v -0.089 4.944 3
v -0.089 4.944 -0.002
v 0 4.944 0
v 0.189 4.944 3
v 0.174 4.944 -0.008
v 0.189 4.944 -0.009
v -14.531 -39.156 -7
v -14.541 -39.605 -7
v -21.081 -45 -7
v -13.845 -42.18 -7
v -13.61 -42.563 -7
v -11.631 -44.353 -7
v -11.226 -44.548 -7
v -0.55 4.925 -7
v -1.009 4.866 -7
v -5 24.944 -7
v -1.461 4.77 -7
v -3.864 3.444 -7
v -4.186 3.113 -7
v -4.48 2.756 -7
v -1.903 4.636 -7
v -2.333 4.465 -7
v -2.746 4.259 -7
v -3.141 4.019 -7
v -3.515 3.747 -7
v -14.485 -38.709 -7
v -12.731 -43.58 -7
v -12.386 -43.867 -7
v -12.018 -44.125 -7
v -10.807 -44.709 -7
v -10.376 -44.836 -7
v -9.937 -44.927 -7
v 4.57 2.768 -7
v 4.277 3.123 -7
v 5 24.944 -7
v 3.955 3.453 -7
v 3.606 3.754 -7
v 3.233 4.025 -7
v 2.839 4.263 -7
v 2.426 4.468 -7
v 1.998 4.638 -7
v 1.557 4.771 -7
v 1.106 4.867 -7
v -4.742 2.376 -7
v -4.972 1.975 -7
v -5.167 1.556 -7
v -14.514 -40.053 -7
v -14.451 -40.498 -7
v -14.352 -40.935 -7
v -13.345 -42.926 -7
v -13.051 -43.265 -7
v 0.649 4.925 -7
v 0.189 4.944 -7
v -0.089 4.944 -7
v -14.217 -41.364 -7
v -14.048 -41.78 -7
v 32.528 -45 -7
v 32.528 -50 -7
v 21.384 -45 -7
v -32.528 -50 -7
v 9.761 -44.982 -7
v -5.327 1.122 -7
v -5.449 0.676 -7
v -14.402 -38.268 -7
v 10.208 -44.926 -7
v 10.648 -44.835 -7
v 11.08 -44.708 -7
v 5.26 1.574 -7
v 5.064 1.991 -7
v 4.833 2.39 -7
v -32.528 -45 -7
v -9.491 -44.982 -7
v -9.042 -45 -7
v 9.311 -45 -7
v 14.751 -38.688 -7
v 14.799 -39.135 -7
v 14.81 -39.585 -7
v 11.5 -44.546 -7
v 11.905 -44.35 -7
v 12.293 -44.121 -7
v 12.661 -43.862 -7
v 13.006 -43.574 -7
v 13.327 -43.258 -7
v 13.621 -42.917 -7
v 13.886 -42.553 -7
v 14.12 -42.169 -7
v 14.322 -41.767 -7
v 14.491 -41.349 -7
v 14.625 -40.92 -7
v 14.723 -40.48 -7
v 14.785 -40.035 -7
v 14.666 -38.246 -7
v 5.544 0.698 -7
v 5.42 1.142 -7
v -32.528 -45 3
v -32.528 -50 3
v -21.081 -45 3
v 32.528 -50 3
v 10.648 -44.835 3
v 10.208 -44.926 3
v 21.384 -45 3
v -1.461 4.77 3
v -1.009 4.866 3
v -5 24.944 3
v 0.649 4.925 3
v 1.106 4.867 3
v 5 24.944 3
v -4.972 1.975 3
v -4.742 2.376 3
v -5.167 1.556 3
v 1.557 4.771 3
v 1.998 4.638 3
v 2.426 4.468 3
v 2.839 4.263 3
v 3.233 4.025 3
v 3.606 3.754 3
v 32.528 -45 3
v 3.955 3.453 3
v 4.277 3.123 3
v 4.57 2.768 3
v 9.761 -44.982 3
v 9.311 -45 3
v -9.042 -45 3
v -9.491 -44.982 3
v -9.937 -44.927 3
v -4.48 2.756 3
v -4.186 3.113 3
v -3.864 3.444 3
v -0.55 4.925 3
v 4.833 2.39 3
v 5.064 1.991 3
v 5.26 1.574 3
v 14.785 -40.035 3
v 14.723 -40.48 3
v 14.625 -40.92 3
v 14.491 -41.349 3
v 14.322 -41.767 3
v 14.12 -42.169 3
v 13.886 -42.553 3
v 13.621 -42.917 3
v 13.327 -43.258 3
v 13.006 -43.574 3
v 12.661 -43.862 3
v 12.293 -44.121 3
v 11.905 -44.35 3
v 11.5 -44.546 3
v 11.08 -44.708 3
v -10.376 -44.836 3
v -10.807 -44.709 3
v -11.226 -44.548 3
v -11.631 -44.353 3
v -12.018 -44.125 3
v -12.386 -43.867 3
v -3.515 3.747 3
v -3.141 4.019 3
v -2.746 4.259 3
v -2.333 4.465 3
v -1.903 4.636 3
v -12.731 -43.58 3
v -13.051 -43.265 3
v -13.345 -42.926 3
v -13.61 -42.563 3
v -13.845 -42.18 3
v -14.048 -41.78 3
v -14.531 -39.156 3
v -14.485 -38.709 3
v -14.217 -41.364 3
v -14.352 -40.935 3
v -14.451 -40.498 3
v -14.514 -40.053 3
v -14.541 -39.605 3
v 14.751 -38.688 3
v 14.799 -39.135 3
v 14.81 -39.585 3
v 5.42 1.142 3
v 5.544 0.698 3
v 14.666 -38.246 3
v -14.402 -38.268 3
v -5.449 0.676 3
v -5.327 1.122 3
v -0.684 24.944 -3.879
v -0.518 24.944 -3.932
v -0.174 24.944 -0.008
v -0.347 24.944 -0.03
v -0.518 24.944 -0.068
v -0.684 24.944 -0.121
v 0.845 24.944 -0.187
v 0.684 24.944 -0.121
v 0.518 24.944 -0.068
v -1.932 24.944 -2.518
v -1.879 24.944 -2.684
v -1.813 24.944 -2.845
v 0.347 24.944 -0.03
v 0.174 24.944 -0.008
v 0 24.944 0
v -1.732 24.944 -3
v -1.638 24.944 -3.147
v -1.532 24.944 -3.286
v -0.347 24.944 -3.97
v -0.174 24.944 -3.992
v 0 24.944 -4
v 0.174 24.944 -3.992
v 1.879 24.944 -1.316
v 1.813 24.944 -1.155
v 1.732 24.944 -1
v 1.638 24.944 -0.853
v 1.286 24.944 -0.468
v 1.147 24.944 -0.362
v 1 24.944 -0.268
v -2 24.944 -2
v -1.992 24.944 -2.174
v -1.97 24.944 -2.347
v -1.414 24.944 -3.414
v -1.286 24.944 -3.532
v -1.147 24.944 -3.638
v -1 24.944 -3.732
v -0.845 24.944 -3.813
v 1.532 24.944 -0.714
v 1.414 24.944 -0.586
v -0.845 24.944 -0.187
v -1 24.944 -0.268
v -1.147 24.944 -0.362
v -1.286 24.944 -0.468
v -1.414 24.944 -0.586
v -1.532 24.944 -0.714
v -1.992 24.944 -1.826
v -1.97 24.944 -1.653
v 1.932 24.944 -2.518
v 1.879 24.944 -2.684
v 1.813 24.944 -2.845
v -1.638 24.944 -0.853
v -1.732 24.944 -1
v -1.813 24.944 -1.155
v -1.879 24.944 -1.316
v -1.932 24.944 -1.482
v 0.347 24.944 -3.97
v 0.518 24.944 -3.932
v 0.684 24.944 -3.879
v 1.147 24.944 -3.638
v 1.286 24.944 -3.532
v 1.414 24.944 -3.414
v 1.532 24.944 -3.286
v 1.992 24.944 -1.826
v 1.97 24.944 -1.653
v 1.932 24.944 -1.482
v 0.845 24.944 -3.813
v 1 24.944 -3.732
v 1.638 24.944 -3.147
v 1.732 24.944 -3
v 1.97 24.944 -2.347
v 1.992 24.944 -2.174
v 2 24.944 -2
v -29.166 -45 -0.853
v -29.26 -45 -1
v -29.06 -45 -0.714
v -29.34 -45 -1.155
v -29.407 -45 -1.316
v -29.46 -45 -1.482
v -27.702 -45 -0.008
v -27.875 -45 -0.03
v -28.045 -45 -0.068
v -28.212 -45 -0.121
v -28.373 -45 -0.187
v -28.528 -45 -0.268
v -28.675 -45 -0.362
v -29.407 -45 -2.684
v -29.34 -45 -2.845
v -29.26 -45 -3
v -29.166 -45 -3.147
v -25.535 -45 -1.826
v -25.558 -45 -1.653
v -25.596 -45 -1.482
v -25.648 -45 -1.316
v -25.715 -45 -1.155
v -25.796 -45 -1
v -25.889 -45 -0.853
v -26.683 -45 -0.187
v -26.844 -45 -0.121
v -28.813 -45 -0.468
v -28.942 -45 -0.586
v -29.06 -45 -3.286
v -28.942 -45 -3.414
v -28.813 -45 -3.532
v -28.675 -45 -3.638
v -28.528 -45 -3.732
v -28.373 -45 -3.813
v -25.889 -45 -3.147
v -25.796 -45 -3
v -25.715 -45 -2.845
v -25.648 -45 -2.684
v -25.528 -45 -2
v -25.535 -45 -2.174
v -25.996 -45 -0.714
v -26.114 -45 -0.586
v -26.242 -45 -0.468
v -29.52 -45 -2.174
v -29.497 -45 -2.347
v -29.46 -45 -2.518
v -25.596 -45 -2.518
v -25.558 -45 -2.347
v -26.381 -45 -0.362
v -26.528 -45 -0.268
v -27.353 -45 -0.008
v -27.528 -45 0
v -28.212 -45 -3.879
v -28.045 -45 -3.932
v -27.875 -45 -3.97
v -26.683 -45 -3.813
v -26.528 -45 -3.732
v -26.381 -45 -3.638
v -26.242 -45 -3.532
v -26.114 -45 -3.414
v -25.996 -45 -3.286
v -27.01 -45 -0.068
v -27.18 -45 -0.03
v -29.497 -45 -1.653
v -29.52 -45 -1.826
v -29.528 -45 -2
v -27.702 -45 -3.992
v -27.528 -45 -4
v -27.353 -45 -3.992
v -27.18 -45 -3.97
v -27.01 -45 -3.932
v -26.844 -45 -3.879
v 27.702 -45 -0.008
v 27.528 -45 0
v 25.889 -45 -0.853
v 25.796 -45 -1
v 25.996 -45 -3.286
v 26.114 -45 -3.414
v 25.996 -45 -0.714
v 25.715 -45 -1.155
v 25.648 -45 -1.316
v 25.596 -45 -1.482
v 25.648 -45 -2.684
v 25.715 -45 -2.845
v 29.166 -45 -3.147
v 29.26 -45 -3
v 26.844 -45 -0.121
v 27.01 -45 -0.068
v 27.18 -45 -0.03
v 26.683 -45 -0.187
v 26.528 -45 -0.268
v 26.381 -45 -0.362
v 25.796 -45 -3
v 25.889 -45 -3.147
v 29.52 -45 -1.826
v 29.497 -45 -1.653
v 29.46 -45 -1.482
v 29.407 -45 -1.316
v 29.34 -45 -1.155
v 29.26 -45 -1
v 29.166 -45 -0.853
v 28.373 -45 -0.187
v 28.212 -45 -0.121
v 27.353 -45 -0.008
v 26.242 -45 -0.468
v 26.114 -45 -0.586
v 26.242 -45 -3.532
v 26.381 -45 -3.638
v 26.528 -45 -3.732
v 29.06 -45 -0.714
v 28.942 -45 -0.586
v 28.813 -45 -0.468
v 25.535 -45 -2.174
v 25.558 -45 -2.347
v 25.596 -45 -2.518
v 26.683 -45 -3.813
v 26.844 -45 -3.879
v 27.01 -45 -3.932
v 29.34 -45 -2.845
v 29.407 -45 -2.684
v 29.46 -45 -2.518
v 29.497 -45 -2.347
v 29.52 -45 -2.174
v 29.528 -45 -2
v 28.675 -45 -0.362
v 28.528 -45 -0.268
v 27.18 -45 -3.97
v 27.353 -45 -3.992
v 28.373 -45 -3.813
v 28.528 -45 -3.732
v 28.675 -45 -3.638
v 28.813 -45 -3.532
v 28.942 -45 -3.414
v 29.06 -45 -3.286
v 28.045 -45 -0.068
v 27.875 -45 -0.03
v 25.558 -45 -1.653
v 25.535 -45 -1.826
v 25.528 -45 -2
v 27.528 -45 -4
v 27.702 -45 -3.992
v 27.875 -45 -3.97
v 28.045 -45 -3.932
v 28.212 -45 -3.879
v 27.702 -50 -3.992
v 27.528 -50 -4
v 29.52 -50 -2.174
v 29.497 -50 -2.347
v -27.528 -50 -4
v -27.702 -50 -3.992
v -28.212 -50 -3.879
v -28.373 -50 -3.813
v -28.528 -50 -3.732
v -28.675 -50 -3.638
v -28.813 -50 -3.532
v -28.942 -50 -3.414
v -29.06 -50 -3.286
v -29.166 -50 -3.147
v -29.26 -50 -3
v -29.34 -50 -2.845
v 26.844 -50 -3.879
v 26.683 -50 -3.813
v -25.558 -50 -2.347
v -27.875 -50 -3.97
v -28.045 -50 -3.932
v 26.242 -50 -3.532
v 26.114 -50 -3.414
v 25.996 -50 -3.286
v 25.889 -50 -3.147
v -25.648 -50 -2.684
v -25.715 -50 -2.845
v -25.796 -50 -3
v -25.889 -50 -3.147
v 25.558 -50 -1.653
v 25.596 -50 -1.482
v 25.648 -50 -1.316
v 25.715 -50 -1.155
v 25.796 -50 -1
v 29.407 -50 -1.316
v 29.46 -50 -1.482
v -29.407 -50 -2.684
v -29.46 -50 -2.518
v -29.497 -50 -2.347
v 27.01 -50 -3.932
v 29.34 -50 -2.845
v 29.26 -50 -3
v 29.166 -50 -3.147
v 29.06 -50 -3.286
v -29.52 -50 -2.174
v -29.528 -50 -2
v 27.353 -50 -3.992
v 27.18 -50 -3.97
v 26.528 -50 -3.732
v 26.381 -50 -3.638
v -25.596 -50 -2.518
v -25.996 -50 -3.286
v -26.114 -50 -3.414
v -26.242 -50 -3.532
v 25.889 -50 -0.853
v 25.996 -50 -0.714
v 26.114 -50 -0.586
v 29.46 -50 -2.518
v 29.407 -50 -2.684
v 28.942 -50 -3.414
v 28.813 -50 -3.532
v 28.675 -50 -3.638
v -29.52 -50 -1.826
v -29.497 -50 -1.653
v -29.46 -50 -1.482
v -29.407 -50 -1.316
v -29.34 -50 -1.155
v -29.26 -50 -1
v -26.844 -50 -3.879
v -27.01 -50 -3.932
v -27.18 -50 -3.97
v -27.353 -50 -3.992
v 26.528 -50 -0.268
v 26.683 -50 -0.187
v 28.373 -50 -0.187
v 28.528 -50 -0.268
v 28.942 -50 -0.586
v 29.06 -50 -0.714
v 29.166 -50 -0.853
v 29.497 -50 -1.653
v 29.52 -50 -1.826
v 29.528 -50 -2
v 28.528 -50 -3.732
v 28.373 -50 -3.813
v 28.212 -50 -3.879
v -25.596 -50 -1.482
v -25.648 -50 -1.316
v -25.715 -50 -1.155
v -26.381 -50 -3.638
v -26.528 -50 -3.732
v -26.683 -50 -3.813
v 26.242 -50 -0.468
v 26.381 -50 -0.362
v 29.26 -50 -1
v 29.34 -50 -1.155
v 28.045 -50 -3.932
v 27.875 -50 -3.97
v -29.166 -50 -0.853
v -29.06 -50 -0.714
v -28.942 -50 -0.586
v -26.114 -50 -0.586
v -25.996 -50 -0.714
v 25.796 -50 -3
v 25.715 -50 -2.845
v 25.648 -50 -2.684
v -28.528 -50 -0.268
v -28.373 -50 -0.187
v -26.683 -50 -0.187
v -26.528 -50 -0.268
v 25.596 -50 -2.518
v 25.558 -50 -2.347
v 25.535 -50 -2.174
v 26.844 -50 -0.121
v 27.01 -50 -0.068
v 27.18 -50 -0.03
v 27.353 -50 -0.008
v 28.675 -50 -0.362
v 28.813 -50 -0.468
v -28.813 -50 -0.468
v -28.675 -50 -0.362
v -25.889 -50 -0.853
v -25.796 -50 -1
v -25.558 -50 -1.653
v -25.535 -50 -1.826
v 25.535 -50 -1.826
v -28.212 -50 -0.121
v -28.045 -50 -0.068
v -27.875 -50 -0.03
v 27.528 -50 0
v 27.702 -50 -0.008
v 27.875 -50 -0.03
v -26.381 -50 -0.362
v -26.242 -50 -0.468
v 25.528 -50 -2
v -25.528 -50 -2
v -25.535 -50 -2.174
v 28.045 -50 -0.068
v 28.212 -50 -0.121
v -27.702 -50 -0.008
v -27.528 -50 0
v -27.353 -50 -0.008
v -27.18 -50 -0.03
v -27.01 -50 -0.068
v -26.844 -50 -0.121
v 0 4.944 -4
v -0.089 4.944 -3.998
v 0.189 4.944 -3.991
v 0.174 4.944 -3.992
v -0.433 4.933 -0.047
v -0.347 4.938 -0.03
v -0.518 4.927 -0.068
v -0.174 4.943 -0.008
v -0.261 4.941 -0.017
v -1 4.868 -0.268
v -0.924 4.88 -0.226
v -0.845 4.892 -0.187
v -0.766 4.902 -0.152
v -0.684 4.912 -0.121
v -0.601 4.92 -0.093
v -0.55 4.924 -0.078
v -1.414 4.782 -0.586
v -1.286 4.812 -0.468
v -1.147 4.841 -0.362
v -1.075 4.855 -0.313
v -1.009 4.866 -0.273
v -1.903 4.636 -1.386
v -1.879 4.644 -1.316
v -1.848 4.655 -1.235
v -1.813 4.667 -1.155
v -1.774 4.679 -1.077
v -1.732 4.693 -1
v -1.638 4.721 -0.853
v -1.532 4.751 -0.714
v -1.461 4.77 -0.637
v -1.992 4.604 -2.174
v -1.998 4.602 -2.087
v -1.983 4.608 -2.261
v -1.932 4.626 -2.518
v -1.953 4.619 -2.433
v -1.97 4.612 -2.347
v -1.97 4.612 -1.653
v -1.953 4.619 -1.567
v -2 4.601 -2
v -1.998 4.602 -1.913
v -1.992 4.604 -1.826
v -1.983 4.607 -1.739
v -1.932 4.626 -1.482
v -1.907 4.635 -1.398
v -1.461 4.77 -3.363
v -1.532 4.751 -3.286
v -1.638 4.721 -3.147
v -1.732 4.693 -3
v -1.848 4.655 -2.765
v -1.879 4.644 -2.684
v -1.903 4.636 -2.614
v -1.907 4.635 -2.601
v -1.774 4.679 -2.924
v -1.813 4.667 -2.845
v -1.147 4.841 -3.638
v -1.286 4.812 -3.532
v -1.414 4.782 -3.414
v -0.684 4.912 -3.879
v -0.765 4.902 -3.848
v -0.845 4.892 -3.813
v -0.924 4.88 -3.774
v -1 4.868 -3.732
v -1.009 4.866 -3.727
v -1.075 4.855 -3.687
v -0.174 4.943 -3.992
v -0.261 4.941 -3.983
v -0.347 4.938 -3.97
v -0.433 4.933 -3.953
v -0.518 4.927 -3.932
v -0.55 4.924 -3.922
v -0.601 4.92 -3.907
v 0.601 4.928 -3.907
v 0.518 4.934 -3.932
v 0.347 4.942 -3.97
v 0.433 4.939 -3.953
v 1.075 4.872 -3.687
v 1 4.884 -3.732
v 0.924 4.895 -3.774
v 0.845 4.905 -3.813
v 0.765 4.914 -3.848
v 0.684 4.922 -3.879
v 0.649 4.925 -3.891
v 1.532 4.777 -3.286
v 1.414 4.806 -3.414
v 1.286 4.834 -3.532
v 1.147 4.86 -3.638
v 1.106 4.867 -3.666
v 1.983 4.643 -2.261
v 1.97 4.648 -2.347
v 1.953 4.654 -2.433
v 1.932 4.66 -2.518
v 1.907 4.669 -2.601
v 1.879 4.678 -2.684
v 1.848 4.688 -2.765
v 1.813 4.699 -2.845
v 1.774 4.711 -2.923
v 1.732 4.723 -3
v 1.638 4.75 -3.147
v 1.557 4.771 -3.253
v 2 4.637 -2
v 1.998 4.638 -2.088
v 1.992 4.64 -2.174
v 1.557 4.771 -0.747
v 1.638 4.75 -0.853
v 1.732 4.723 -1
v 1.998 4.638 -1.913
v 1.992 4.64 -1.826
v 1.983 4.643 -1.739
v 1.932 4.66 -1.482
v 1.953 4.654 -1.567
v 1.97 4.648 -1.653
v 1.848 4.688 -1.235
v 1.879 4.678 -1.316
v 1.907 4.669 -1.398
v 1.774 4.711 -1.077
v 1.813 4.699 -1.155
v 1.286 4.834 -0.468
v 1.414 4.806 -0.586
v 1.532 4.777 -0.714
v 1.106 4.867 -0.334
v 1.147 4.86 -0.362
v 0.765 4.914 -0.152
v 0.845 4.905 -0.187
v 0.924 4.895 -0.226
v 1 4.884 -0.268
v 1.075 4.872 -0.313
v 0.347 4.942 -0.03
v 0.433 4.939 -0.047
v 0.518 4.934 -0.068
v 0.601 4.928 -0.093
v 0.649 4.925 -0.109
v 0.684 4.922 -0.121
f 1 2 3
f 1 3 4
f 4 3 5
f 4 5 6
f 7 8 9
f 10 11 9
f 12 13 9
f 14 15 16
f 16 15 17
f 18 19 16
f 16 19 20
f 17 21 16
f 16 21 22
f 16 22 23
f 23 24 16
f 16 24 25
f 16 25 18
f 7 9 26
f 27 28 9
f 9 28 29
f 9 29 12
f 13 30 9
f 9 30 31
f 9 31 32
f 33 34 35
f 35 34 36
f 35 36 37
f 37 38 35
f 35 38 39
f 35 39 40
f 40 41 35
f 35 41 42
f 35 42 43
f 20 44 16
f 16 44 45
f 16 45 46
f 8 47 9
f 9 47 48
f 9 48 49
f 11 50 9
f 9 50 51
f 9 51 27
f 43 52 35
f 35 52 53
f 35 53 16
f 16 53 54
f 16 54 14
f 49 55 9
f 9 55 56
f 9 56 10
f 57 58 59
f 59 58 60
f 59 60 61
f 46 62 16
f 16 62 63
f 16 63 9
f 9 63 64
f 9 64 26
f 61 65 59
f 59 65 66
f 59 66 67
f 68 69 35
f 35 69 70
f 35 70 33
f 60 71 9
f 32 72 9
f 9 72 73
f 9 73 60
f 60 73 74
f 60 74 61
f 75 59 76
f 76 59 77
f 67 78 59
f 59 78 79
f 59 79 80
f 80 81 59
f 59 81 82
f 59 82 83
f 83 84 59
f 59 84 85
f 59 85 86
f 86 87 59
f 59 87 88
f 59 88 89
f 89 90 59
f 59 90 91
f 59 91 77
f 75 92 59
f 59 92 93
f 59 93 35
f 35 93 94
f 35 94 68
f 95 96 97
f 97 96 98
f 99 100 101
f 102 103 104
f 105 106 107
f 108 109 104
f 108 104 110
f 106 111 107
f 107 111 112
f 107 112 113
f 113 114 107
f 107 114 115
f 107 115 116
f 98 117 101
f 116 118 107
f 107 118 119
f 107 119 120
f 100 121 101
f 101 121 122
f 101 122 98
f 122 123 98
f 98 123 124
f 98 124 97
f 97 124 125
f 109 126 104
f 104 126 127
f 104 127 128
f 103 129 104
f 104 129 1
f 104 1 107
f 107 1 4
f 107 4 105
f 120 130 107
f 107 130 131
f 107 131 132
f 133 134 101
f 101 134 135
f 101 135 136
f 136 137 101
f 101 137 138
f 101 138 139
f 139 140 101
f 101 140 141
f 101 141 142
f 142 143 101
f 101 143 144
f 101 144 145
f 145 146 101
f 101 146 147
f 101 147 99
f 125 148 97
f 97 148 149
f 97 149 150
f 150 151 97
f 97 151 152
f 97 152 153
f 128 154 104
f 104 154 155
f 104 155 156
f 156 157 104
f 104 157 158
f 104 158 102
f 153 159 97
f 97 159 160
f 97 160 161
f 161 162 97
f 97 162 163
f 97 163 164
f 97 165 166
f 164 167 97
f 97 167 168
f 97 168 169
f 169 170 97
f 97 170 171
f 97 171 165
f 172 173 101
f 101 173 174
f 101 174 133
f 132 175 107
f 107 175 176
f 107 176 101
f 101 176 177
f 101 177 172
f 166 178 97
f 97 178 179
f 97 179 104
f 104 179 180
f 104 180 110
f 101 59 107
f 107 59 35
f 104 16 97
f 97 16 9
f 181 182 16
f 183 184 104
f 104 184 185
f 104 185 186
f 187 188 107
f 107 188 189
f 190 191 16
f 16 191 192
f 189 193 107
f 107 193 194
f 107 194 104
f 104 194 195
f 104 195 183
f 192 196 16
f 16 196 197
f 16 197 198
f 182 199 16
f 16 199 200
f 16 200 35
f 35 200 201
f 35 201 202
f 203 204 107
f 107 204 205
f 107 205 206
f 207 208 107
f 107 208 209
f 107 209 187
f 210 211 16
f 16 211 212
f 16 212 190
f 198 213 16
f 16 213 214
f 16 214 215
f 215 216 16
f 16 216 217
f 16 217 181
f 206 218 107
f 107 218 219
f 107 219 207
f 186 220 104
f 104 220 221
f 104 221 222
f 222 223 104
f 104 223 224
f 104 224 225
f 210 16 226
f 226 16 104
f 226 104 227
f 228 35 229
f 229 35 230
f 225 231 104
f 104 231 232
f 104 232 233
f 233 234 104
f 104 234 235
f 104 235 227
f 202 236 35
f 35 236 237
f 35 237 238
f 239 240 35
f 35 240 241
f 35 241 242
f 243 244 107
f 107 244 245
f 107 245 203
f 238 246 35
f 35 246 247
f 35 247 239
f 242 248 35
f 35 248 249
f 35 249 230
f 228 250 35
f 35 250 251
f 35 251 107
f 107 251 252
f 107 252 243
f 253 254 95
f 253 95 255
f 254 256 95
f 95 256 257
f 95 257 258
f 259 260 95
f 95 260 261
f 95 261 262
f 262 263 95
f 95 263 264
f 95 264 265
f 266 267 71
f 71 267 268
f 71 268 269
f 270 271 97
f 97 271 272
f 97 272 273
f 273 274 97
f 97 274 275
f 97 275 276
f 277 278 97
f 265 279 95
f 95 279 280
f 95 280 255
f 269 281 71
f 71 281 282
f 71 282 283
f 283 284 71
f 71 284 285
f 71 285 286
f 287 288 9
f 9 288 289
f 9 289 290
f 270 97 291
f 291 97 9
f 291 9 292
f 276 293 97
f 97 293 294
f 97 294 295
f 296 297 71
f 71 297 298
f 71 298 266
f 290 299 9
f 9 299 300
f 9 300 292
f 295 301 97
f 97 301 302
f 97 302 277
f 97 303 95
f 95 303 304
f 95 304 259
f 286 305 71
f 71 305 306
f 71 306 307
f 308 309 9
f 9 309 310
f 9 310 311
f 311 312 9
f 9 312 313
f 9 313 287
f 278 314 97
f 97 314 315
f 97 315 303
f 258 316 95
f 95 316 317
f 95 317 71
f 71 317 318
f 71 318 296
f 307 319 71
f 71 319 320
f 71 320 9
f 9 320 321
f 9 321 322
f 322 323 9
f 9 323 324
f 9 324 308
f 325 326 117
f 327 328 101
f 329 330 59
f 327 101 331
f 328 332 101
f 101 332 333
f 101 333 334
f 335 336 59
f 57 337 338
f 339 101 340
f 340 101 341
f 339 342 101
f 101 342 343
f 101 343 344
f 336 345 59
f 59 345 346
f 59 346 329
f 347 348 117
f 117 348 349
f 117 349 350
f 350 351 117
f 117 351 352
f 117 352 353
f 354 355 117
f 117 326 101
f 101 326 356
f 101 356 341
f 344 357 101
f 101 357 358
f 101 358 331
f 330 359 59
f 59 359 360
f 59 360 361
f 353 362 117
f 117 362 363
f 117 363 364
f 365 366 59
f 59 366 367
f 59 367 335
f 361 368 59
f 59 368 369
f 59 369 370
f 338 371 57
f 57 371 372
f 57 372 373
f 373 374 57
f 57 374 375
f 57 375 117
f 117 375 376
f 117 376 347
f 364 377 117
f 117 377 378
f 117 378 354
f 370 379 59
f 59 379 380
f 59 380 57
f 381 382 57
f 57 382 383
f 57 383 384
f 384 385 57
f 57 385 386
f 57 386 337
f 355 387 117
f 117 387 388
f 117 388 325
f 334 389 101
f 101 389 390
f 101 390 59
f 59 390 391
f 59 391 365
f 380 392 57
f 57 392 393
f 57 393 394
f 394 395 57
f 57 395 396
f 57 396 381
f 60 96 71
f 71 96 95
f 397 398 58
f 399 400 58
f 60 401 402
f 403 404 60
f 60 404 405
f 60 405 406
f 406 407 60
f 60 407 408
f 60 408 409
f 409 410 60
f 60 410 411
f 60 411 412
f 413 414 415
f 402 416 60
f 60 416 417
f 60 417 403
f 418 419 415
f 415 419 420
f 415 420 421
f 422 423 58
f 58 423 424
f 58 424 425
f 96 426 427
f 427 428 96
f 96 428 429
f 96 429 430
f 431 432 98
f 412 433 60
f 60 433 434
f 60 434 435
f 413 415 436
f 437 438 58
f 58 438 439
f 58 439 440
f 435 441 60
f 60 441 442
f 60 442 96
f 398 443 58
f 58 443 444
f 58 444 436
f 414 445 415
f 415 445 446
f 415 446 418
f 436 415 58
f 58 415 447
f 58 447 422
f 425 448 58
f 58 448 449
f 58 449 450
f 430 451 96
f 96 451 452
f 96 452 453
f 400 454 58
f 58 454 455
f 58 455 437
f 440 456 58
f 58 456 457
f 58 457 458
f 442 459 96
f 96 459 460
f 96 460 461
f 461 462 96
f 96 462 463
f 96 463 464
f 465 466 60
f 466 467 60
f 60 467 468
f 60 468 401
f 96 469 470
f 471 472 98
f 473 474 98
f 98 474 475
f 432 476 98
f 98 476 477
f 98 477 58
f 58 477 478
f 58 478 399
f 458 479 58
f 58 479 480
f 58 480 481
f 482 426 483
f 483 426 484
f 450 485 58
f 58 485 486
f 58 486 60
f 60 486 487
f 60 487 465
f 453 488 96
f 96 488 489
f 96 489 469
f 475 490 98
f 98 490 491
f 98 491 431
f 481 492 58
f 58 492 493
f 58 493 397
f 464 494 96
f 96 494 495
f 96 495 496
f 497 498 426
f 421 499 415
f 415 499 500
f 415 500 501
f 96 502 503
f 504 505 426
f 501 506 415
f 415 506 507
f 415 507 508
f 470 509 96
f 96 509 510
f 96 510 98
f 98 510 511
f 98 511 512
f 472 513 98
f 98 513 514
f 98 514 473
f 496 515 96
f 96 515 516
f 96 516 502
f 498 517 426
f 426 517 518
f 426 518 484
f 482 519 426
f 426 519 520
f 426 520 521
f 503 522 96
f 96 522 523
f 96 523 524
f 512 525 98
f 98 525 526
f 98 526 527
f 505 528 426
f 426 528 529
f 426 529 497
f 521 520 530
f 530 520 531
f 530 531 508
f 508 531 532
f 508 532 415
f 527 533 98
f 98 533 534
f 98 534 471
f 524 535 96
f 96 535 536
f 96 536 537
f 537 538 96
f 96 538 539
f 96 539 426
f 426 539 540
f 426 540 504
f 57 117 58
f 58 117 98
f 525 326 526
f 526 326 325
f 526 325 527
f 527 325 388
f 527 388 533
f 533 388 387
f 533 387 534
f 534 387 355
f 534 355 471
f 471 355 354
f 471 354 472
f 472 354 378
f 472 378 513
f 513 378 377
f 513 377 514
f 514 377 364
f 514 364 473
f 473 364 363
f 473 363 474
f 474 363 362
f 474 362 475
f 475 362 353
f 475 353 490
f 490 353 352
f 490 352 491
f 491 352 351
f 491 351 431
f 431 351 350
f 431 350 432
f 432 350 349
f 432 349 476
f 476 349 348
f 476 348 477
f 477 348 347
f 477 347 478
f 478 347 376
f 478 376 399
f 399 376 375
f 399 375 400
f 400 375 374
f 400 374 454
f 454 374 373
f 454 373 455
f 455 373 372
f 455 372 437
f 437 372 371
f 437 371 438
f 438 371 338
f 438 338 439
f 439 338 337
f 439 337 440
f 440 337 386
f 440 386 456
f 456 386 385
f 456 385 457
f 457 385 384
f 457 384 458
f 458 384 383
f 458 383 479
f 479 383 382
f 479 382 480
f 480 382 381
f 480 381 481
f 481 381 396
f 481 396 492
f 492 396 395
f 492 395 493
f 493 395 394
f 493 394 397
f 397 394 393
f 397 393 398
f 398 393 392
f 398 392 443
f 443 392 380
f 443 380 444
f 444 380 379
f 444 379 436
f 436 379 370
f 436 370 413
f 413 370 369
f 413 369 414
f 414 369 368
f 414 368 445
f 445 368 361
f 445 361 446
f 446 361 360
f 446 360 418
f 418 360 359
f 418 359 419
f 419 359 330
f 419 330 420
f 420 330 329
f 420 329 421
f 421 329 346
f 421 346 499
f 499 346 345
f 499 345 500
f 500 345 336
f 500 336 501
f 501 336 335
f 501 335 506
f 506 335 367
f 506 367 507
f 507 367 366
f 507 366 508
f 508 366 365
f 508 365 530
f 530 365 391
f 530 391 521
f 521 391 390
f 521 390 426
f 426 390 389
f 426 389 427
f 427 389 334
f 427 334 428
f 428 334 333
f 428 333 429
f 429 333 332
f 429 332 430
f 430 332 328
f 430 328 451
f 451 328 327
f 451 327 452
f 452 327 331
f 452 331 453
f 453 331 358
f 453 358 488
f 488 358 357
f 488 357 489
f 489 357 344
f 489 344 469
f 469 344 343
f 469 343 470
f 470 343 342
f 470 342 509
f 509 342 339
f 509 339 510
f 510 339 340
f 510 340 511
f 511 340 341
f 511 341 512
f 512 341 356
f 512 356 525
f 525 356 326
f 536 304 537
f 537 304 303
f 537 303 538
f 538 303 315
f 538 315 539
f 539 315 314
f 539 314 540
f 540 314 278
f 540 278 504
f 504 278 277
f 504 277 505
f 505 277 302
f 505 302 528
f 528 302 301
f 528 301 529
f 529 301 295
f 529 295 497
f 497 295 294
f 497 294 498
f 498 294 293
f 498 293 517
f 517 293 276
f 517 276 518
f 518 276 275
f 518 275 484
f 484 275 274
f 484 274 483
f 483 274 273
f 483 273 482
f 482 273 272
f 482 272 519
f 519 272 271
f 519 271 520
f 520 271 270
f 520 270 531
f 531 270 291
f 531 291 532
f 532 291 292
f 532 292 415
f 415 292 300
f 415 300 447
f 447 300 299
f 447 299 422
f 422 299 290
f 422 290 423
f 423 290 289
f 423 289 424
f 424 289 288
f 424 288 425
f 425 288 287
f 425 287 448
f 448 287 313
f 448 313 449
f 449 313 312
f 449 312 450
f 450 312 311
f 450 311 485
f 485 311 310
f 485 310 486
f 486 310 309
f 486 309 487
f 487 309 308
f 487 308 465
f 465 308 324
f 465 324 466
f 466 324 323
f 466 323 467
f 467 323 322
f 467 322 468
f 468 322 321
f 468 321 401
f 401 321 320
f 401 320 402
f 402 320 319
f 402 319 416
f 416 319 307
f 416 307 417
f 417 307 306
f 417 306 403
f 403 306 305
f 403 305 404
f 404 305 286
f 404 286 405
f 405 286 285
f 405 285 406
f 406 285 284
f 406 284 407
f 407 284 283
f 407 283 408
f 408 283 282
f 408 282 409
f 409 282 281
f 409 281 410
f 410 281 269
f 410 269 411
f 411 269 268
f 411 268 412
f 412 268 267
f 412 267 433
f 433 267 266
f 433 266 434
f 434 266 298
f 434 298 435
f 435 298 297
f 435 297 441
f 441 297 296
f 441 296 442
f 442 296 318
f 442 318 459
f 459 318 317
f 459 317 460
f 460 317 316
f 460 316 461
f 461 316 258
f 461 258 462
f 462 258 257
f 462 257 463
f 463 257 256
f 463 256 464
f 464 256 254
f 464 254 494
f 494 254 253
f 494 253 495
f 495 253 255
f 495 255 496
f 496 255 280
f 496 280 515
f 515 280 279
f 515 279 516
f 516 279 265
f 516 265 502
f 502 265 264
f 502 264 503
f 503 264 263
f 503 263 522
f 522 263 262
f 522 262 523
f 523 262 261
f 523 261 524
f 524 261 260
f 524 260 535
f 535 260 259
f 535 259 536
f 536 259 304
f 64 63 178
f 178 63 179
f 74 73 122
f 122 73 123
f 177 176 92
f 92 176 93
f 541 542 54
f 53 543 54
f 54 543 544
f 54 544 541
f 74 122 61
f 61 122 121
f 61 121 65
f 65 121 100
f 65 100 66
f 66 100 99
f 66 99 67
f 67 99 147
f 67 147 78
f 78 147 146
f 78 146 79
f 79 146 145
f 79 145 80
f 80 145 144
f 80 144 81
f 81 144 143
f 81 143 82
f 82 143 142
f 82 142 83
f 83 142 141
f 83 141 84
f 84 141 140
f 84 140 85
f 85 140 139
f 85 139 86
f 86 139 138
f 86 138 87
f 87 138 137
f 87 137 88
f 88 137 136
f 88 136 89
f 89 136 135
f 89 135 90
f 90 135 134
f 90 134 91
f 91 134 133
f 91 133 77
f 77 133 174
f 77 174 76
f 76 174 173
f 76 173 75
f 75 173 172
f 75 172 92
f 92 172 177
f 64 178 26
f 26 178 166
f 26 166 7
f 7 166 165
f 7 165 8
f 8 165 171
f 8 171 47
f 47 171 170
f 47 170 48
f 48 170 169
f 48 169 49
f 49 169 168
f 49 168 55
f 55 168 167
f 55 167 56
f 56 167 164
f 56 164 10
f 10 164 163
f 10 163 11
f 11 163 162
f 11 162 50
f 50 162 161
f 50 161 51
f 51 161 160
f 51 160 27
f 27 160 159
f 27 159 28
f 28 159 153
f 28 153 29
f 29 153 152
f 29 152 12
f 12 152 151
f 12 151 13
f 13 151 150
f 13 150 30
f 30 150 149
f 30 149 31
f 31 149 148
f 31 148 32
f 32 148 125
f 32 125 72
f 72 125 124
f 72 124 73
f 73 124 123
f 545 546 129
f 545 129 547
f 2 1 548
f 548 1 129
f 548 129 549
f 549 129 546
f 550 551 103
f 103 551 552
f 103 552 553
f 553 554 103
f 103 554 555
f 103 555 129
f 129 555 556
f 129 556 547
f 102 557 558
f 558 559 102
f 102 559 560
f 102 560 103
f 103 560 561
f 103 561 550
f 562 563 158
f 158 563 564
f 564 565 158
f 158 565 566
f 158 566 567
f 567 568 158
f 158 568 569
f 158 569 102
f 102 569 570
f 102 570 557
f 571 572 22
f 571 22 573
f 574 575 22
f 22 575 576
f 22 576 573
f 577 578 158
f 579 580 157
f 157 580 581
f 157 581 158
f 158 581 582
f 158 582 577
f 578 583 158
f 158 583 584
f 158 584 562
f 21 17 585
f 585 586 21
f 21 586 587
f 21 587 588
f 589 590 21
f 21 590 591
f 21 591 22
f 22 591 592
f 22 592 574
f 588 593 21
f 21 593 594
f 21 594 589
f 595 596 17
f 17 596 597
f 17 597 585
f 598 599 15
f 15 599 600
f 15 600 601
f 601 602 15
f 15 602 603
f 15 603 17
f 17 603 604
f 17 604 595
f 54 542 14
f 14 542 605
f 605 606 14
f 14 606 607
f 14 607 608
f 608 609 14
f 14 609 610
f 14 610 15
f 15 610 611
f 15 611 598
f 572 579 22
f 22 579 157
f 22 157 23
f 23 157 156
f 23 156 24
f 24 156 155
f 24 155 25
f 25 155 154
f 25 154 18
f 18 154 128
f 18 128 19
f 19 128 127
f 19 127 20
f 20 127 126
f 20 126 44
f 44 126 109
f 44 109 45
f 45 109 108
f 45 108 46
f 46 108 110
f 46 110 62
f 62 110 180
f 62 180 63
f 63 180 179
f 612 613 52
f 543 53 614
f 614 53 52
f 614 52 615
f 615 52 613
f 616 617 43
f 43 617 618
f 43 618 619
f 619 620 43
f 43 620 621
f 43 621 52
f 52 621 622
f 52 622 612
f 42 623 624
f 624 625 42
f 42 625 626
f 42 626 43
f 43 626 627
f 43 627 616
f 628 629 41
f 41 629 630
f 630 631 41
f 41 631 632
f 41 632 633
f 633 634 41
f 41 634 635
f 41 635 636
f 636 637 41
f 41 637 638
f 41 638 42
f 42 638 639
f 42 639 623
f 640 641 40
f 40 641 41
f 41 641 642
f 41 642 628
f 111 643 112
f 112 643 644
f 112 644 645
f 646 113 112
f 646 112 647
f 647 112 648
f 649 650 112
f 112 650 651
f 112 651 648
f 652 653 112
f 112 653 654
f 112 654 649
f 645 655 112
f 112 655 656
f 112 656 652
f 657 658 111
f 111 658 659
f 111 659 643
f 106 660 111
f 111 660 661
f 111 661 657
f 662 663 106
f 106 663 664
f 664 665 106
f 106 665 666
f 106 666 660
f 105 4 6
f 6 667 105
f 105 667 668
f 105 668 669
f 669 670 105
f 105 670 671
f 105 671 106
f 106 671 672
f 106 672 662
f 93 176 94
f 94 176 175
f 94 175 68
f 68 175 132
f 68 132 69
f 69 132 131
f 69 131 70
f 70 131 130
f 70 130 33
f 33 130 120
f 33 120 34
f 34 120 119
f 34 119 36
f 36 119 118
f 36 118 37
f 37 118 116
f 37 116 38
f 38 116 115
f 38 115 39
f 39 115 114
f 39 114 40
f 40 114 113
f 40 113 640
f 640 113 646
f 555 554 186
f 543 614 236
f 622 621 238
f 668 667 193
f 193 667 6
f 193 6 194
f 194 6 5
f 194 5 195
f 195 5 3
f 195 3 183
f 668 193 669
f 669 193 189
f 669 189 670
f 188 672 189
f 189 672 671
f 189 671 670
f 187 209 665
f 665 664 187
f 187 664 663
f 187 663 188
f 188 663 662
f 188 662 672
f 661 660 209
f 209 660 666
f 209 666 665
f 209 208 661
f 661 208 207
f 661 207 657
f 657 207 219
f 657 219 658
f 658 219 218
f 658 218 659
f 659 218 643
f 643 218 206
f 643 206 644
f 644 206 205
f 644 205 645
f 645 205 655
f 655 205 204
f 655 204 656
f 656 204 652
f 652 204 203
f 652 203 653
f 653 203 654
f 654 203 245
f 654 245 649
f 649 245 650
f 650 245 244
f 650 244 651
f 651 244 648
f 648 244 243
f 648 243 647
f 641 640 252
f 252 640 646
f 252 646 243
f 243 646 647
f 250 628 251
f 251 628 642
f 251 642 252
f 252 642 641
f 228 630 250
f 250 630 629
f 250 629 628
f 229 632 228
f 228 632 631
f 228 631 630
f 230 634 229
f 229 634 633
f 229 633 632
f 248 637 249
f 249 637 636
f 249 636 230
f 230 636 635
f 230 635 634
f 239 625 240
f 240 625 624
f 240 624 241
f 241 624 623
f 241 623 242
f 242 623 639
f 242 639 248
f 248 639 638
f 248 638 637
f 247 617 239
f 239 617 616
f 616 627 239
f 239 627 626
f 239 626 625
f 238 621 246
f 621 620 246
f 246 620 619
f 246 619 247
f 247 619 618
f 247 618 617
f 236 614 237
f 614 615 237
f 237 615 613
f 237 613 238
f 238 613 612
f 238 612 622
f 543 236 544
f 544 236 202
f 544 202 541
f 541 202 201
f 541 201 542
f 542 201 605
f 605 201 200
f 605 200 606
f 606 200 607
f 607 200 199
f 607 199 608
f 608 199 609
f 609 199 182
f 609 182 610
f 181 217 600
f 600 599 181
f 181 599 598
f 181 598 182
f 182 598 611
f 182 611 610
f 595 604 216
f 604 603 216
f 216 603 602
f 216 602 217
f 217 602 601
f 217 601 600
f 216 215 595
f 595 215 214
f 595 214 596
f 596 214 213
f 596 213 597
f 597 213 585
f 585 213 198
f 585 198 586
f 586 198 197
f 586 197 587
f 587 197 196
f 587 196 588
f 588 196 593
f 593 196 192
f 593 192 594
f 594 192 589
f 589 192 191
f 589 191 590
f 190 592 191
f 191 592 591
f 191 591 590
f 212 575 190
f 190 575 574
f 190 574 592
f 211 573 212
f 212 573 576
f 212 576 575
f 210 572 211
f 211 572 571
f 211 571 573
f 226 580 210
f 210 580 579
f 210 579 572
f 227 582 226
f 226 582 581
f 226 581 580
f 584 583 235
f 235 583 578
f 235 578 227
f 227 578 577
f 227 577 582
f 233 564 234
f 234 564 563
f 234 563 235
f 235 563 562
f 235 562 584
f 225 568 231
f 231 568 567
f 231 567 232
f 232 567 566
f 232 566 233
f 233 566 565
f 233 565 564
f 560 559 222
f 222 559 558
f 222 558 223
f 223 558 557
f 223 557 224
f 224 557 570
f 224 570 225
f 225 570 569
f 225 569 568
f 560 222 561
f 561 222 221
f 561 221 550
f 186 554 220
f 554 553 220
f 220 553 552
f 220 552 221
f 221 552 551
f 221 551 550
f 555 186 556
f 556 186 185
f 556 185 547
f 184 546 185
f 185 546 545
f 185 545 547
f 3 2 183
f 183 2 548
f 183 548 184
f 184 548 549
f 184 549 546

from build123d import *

# Parameters (mm, degrees)
BOSS_EXTRUDE1_DEPTH            = 3
BOSS_EXTRUDE1_DEPTH_BACK       = 7
BOSS_EXTRUDE2_DEPTH            = 3
BOSS_EXTRUDE2_DEPTH_BACK       = 7
SKETCH1_3_W                    = 65.055522872
SKETCH1_3_H                    = 5
CUT_EXTRUDE1_REACH             = 79.455
SKETCH2_R                      = 2
CUT_EXTRUDE2_REACH             = 62.059
CUT_EXTRUDE2_DIRECTION_2_REACH = 62.059
FILLET4_R                      = 5.5
CUT_EXTRUDE3_REACH             = 83.998
SKETCH4_R                      = 2


with BuildPart() as part:
    # Sketch1 → Boss-Extrude1 (new, two sides: drawn at the far end of the back side and taken through both)
    with BuildSketch(Plane.XY.offset(-BOSS_EXTRUDE1_DEPTH_BACK)):
        Polygon((5, 24.943962348), (-5, 24.943962348), (-21.080707518, -45), (21.383633098, -45), align=None)
    extrude(amount=BOSS_EXTRUDE1_DEPTH + BOSS_EXTRUDE1_DEPTH_BACK)

    # Sketch1<3> → Boss-Extrude2 (add, two sides: drawn at the far end of the back side and taken through both)
    with BuildSketch(Plane.XY.offset(-BOSS_EXTRUDE2_DEPTH_BACK)):
        with Locations((0, -47.5)):
            Rectangle(SKETCH1_3_W, SKETCH1_3_H)
    extrude(amount=BOSS_EXTRUDE2_DEPTH + BOSS_EXTRUDE2_DEPTH_BACK)

    # Sketch2 → Cut-Extrude1 (cut, up to next)
    with BuildSketch(Plane(origin=(0, -45, 0), x_dir=(1, 0, 0), z_dir=(0, 1, 0)), mode=Mode.PRIVATE) as cut_extrude1_sk1:
        with Locations((-27.527761436, 2)):
            Circle(SKETCH2_R)
    cut_extrude1_tool1 = extrude(cut_extrude1_sk1.sketch, amount=-CUT_EXTRUDE1_REACH, mode=Mode.PRIVATE) & part.part
    # Sketch2 → Cut-Extrude1 (cut, up to next)
    with BuildSketch(Plane(origin=(0, -45, 0), x_dir=(1, 0, 0), z_dir=(0, 1, 0)), mode=Mode.PRIVATE) as cut_extrude1_sk2:
        with Locations((27.527761436, 2)):
            Circle(SKETCH2_R)
    cut_extrude1_tool2 = extrude(cut_extrude1_sk2.sketch, amount=-CUT_EXTRUDE1_REACH, mode=Mode.PRIVATE) & part.part
    add(cut_extrude1_tool1.solids().sort_by_distance((-27.527761, -45, -2))[0], mode=Mode.SUBTRACT)
    add(cut_extrude1_tool2.solids().sort_by_distance((27.527761, -45, -2))[0], mode=Mode.SUBTRACT)

    # Sketch3 → Cut-Extrude2 (cut, up to next)
    with BuildSketch(Plane.XY, mode=Mode.PRIVATE) as cut_extrude2_sk1:
        Polygon((-4.467725682, 4.943962348), (4.549449769, 4.943962348), (16.248294489, -45), (-15.95026433, -45), align=None)
    cut_extrude2_tool1 = extrude(cut_extrude2_sk1.sketch, amount=-CUT_EXTRUDE2_REACH, mode=Mode.PRIVATE) & part.part
    add(cut_extrude2_tool1.solids().sort_by_distance((0.105077, -24.709767, 0))[0], mode=Mode.SUBTRACT)

    # Sketch3 → Cut-Extrude2 direction 2 (cut, up to next)
    with BuildSketch(Plane.XY, mode=Mode.PRIVATE) as cut_extrude2_direction_2_sk1:
        Polygon((-4.467725682, 4.943962348), (4.549449769, 4.943962348), (16.248294489, -45), (-15.95026433, -45), align=None)
    cut_extrude2_direction_2_tool1 = extrude(cut_extrude2_direction_2_sk1.sketch, amount=CUT_EXTRUDE2_DIRECTION_2_REACH, mode=Mode.PRIVATE) & part.part
    add(cut_extrude2_direction_2_tool1.solids().sort_by_distance((0.105077, -24.709767, 0))[0], mode=Mode.SUBTRACT)

    # Fillet4
    fillet4_edges = [part.edges().sort_by_distance(p)[0] for p in [
        (16.248294489, -45, -2),
        (-15.95026433, -45, -2),
        (-4.467725682, 4.943962348, -2),
        (4.549449769, 4.943962348, -2),
    ]]
    fillet(fillet4_edges, radius=FILLET4_R)

    # Sketch4 → Cut-Extrude3 (cut, up to next)
    with BuildSketch(Plane(origin=(0, 24.943962348, 0), x_dir=(1, 0, 0), z_dir=(0, 1, 0)), mode=Mode.PRIVATE) as cut_extrude3_sk1:
        with Locations((0, 2)):
            Circle(SKETCH4_R)
    cut_extrude3_tool1 = extrude(cut_extrude3_sk1.sketch, amount=-CUT_EXTRUDE3_REACH, mode=Mode.PRIVATE) & part.part
    add(cut_extrude3_tool1.solids().sort_by_distance((0, 24.943962, -2))[0], mode=Mode.SUBTRACT)


solid = part.part
